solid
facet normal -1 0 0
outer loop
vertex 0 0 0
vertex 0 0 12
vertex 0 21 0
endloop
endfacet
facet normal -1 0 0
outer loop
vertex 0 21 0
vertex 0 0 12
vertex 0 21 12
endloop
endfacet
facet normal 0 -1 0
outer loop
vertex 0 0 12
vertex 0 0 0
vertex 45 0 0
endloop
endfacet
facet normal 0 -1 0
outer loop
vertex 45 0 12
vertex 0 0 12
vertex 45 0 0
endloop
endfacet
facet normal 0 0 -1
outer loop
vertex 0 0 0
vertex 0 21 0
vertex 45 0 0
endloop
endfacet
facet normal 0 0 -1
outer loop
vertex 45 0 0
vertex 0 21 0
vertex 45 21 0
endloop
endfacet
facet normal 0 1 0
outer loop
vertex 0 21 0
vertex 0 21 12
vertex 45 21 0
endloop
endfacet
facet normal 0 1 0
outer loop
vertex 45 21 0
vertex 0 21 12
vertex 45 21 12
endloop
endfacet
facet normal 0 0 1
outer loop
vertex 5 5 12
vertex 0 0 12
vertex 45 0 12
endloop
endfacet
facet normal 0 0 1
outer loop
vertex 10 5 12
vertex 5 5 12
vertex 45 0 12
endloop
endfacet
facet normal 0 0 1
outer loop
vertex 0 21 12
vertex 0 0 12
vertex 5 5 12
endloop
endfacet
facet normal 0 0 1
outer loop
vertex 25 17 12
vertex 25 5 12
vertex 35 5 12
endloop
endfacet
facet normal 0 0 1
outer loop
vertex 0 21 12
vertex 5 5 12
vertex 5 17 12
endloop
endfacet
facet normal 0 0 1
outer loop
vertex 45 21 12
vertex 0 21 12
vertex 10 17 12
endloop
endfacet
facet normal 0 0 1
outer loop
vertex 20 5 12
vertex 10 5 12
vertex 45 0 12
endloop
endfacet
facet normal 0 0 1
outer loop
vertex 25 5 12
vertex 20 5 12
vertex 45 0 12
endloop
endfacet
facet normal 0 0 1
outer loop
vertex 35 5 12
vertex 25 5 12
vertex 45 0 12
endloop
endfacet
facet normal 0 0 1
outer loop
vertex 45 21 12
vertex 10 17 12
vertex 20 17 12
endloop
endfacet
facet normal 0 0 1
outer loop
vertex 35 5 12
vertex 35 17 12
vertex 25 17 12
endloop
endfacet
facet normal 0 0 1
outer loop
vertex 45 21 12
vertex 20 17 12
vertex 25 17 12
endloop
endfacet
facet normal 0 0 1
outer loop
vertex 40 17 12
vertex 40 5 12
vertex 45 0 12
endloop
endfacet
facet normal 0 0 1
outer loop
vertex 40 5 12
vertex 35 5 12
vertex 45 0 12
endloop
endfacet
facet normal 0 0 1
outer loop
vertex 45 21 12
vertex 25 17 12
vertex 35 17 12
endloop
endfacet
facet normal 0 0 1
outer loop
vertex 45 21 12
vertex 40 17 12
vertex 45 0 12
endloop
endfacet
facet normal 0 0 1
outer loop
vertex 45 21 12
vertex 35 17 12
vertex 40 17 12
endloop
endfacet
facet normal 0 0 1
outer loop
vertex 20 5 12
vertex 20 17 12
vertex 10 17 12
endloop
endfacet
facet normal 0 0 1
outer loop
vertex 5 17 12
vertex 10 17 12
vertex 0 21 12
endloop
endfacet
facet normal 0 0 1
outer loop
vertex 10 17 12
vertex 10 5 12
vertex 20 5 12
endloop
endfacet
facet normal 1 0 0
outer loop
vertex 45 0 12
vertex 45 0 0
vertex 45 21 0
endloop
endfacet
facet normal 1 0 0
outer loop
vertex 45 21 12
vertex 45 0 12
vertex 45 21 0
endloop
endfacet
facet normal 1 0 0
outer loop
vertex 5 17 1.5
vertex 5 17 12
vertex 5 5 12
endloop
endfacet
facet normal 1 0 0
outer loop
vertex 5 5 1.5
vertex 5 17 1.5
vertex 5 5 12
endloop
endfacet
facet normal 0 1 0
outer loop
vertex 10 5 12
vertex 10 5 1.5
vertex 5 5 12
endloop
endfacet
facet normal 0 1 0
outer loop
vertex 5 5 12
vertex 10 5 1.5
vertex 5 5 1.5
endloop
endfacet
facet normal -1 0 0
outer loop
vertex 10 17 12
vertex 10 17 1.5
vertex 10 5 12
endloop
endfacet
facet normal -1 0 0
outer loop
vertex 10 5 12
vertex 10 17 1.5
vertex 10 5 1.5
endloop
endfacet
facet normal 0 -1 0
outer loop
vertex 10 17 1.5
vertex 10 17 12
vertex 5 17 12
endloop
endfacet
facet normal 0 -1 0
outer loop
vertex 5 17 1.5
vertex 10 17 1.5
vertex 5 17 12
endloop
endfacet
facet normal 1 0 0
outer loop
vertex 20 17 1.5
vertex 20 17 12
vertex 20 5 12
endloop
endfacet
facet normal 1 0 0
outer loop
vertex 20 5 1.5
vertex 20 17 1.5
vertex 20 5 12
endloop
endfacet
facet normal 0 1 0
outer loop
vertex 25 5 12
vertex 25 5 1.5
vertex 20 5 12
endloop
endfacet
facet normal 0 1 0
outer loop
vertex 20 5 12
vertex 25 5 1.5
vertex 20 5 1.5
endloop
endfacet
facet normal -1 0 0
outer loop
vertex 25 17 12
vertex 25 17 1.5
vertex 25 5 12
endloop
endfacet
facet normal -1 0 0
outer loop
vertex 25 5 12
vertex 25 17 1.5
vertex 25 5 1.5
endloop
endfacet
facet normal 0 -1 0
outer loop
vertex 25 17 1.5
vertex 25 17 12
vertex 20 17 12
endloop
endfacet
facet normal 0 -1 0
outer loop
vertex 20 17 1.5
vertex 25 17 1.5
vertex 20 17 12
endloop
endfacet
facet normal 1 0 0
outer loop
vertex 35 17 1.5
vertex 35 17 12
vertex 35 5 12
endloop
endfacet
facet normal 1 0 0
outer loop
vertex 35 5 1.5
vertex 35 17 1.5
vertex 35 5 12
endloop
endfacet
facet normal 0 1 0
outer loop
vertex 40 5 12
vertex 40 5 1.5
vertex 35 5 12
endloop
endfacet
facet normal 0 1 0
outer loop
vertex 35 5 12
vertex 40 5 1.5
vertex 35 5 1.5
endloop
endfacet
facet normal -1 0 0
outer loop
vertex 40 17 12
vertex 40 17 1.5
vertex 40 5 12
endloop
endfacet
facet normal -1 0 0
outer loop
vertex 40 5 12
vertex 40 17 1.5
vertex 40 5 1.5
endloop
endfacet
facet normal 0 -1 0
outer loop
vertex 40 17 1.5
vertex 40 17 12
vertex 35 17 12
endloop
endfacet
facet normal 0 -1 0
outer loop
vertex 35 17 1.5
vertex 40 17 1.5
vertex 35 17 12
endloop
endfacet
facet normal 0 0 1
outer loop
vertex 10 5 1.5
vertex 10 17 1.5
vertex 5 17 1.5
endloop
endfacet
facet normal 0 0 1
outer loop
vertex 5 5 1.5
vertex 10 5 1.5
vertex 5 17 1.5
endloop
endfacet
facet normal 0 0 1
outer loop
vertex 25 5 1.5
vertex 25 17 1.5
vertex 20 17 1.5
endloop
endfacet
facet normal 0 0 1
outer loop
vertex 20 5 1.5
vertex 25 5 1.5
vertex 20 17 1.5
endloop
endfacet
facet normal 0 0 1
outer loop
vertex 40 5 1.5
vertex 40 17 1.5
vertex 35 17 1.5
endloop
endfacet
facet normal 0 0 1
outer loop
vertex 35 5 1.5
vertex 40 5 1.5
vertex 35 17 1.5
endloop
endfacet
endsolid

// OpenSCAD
//Porta pendrives paramétrico

//Modulo para agujero. Las medidas de un conector USB son 11x4.7x13. Se hacen un poco más grande el agujero
module agujero(){

cube(size=[5,12,12]);
}

// Modulo para generar el porta Pendrives con el nº de agujeros como parámetro de entrada
module portaPD(nAg){
	// Se calcula la longitud del cuerpo principal
	// separacion del primer agujero + nºagujerosxancho agujeros+ nº agujeros menso uno por la separación entre agujeros + separación del último agujero
	longX = 5+5*nAg+10*(nAg-1)+5;
	difference(){
		// Cuerpo principal
		cube(size=[longX,21,12]); 

		//Agujeros	
		for ( i = [0:nAg-1 ] )
		{
			translate([5+i*15,5,1.5])agujero(); 
		}
	}
}

portaPD(3);
